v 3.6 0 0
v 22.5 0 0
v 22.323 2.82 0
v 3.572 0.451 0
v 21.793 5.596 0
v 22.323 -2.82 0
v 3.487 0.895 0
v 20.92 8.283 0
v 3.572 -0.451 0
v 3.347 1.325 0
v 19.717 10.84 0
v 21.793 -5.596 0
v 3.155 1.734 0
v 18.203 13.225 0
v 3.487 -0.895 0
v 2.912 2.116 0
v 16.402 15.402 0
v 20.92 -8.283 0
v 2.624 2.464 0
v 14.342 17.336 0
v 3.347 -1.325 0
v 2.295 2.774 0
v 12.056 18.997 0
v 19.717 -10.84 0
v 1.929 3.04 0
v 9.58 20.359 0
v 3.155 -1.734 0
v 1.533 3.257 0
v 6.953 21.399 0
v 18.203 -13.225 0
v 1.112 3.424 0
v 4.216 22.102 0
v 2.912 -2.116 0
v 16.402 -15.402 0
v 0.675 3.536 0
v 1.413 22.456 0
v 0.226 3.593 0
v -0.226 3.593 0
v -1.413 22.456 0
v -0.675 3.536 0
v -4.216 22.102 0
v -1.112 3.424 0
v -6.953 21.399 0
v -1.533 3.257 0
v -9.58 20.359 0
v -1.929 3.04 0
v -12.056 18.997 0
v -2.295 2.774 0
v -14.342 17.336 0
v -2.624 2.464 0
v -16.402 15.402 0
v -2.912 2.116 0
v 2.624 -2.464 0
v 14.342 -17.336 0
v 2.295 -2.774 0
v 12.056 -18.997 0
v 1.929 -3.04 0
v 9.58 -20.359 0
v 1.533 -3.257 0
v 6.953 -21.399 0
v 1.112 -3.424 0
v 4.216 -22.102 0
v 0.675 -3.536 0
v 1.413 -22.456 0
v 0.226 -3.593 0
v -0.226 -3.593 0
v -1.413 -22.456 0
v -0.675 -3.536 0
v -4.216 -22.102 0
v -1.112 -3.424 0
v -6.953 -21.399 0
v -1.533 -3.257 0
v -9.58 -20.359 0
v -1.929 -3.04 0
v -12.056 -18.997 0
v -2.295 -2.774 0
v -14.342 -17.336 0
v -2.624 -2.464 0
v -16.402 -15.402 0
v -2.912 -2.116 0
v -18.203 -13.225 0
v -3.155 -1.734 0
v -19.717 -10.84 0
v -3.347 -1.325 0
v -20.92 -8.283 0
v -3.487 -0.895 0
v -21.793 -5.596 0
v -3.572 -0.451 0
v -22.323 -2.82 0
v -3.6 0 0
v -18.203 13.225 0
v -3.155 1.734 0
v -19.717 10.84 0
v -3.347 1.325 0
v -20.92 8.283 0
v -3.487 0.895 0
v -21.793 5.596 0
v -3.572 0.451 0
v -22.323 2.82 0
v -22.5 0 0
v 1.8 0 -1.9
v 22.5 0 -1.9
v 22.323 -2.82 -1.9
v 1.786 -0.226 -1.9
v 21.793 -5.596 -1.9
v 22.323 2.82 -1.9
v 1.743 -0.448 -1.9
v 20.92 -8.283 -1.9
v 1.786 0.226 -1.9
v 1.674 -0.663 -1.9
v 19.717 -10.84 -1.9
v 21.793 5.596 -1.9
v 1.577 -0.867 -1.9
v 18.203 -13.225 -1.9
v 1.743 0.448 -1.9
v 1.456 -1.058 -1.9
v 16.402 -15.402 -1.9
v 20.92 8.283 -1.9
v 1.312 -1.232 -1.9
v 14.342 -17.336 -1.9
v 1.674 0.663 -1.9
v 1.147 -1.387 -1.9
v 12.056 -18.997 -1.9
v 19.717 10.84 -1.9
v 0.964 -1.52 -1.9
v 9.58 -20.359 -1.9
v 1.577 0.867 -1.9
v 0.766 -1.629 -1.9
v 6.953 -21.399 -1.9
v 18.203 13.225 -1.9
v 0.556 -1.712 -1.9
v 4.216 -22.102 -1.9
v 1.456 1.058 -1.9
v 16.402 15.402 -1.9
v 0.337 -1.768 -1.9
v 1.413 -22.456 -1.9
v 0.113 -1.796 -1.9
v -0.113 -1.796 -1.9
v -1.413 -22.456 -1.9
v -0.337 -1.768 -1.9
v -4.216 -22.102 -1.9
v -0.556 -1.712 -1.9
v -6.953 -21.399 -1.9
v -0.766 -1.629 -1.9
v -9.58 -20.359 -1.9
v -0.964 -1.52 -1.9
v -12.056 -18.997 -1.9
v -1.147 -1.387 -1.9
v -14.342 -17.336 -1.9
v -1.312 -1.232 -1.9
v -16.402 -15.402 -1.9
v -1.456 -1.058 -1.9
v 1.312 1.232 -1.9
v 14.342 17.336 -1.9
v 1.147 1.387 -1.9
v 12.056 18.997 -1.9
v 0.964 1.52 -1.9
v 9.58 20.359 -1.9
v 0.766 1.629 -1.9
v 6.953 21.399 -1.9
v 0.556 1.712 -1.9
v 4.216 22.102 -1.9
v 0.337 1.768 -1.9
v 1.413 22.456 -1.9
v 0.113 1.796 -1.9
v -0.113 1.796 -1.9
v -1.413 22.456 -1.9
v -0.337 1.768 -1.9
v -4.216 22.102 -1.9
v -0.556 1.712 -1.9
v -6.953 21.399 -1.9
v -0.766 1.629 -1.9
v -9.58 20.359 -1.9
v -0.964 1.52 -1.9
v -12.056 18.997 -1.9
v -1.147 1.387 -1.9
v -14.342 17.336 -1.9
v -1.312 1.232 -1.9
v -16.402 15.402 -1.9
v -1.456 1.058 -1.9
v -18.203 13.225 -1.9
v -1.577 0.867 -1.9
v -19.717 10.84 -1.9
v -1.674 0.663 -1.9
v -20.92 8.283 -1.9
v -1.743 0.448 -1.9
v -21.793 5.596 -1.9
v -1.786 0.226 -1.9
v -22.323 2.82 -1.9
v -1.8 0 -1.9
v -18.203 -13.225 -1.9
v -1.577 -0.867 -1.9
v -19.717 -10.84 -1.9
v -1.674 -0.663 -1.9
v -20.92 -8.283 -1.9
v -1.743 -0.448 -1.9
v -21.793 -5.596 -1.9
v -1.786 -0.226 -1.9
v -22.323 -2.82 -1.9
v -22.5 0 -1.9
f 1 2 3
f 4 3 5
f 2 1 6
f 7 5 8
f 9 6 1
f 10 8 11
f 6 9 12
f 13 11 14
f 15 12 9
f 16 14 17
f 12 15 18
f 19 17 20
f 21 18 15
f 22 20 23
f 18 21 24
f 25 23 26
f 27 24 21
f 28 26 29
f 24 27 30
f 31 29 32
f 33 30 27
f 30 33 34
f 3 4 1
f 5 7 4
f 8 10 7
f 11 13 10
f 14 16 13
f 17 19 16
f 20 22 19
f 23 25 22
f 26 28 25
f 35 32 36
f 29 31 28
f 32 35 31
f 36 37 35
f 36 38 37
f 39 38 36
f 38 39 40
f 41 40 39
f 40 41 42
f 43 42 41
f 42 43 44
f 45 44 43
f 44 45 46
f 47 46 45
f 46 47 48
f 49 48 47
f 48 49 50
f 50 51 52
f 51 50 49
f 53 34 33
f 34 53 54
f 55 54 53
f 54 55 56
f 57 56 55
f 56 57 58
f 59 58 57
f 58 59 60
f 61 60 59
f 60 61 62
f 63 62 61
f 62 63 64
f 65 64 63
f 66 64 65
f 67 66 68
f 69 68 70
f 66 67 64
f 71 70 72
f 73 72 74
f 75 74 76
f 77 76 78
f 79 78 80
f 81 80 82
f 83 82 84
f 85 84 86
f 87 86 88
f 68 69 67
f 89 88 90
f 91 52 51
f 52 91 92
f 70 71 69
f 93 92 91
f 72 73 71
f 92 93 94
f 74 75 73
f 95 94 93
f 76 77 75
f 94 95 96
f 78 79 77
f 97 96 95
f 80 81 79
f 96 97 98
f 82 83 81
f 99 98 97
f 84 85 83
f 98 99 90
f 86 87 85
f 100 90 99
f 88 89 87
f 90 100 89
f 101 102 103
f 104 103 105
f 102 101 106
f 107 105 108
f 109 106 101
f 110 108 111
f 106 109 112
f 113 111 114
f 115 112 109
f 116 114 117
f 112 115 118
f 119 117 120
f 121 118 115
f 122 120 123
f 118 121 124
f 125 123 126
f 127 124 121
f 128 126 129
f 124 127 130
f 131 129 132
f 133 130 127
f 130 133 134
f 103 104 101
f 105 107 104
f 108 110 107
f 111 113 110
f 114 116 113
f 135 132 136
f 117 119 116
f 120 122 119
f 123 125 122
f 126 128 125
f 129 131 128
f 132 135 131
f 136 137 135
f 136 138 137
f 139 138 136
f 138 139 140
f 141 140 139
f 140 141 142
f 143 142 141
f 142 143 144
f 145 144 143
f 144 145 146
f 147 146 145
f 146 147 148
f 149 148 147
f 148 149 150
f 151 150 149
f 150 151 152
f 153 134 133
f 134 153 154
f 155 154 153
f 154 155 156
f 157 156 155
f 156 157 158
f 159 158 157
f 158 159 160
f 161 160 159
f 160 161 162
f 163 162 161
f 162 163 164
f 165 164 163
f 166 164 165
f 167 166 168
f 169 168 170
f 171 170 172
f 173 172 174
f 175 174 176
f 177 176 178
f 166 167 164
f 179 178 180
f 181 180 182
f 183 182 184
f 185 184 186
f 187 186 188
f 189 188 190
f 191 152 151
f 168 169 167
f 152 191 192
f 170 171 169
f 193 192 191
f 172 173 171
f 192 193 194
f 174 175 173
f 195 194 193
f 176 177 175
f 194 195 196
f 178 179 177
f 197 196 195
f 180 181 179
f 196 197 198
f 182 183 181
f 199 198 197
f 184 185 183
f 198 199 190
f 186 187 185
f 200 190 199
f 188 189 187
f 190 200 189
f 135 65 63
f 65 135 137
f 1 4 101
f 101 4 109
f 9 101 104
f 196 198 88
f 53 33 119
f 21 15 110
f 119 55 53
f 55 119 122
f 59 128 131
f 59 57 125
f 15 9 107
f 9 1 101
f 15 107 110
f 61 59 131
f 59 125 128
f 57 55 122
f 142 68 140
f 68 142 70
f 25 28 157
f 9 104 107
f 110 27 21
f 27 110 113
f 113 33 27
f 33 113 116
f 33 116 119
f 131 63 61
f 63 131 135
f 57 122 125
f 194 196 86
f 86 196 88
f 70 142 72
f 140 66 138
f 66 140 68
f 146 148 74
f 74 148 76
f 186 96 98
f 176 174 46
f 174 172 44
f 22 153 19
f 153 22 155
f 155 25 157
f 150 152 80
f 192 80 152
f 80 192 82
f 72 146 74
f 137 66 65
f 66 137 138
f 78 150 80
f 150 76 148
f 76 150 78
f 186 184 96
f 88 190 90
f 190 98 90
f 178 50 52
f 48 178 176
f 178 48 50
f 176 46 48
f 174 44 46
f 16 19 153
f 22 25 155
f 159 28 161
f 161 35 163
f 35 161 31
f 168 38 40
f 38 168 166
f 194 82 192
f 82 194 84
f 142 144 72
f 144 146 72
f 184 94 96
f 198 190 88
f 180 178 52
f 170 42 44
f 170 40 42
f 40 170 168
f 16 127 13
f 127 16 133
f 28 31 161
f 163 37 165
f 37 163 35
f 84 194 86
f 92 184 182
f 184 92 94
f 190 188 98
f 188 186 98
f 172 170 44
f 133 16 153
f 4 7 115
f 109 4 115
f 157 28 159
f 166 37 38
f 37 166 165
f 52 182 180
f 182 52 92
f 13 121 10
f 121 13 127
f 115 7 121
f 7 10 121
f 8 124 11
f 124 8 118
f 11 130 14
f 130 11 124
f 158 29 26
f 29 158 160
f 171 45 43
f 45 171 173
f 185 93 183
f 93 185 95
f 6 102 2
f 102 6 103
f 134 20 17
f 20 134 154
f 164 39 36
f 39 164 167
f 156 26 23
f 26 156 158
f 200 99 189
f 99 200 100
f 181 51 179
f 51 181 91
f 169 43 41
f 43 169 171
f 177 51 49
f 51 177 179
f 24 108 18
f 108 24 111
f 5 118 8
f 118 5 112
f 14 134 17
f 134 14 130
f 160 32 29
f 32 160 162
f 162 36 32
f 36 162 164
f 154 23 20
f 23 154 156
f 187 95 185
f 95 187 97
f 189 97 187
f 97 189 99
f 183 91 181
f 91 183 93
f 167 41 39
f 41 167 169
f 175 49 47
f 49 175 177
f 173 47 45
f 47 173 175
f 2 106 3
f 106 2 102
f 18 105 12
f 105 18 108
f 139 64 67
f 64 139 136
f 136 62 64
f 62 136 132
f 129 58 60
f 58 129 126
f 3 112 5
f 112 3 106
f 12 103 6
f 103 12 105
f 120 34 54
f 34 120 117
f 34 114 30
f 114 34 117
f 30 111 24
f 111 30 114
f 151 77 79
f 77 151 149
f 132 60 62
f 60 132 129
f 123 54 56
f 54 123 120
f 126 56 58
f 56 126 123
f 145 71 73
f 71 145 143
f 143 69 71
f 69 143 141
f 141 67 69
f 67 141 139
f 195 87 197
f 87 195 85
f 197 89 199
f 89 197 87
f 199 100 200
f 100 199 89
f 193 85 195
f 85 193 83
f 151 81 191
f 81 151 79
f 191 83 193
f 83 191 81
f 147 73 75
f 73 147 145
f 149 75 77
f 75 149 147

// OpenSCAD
$fn = 50;


difference() {
	union() {
		translate(v = [0, 0, -1.9000000000]) {
			cylinder(h = 1.9000000000, r = 22.5000000000);
		}
	}
	union() {
		translate(v = [0, 0, 0]) {
			rotate(a = [0, 0, 0]) {
				difference() {
					union() {
						#translate(v = [0, 0, -1.9000000000]) {
							cylinder(h = 1.9000000000, r = 1.5000000000);
						}
						#translate(v = [0, 0, -1.9000000000]) {
							cylinder(h = 1.9000000000, r1 = 1.8000000000, r2 = 3.6000000000);
						}
						#translate(v = [0, 0, -1.9000000000]) {
							cylinder(h = 1.9000000000, r = 1.8000000000);
						}
						#translate(v = [0, 0, -1.9000000000]) {
							cylinder(h = 1.9000000000, r = 1.5000000000);
						}
					}
					union();
				}
			}
		}
	}
}
